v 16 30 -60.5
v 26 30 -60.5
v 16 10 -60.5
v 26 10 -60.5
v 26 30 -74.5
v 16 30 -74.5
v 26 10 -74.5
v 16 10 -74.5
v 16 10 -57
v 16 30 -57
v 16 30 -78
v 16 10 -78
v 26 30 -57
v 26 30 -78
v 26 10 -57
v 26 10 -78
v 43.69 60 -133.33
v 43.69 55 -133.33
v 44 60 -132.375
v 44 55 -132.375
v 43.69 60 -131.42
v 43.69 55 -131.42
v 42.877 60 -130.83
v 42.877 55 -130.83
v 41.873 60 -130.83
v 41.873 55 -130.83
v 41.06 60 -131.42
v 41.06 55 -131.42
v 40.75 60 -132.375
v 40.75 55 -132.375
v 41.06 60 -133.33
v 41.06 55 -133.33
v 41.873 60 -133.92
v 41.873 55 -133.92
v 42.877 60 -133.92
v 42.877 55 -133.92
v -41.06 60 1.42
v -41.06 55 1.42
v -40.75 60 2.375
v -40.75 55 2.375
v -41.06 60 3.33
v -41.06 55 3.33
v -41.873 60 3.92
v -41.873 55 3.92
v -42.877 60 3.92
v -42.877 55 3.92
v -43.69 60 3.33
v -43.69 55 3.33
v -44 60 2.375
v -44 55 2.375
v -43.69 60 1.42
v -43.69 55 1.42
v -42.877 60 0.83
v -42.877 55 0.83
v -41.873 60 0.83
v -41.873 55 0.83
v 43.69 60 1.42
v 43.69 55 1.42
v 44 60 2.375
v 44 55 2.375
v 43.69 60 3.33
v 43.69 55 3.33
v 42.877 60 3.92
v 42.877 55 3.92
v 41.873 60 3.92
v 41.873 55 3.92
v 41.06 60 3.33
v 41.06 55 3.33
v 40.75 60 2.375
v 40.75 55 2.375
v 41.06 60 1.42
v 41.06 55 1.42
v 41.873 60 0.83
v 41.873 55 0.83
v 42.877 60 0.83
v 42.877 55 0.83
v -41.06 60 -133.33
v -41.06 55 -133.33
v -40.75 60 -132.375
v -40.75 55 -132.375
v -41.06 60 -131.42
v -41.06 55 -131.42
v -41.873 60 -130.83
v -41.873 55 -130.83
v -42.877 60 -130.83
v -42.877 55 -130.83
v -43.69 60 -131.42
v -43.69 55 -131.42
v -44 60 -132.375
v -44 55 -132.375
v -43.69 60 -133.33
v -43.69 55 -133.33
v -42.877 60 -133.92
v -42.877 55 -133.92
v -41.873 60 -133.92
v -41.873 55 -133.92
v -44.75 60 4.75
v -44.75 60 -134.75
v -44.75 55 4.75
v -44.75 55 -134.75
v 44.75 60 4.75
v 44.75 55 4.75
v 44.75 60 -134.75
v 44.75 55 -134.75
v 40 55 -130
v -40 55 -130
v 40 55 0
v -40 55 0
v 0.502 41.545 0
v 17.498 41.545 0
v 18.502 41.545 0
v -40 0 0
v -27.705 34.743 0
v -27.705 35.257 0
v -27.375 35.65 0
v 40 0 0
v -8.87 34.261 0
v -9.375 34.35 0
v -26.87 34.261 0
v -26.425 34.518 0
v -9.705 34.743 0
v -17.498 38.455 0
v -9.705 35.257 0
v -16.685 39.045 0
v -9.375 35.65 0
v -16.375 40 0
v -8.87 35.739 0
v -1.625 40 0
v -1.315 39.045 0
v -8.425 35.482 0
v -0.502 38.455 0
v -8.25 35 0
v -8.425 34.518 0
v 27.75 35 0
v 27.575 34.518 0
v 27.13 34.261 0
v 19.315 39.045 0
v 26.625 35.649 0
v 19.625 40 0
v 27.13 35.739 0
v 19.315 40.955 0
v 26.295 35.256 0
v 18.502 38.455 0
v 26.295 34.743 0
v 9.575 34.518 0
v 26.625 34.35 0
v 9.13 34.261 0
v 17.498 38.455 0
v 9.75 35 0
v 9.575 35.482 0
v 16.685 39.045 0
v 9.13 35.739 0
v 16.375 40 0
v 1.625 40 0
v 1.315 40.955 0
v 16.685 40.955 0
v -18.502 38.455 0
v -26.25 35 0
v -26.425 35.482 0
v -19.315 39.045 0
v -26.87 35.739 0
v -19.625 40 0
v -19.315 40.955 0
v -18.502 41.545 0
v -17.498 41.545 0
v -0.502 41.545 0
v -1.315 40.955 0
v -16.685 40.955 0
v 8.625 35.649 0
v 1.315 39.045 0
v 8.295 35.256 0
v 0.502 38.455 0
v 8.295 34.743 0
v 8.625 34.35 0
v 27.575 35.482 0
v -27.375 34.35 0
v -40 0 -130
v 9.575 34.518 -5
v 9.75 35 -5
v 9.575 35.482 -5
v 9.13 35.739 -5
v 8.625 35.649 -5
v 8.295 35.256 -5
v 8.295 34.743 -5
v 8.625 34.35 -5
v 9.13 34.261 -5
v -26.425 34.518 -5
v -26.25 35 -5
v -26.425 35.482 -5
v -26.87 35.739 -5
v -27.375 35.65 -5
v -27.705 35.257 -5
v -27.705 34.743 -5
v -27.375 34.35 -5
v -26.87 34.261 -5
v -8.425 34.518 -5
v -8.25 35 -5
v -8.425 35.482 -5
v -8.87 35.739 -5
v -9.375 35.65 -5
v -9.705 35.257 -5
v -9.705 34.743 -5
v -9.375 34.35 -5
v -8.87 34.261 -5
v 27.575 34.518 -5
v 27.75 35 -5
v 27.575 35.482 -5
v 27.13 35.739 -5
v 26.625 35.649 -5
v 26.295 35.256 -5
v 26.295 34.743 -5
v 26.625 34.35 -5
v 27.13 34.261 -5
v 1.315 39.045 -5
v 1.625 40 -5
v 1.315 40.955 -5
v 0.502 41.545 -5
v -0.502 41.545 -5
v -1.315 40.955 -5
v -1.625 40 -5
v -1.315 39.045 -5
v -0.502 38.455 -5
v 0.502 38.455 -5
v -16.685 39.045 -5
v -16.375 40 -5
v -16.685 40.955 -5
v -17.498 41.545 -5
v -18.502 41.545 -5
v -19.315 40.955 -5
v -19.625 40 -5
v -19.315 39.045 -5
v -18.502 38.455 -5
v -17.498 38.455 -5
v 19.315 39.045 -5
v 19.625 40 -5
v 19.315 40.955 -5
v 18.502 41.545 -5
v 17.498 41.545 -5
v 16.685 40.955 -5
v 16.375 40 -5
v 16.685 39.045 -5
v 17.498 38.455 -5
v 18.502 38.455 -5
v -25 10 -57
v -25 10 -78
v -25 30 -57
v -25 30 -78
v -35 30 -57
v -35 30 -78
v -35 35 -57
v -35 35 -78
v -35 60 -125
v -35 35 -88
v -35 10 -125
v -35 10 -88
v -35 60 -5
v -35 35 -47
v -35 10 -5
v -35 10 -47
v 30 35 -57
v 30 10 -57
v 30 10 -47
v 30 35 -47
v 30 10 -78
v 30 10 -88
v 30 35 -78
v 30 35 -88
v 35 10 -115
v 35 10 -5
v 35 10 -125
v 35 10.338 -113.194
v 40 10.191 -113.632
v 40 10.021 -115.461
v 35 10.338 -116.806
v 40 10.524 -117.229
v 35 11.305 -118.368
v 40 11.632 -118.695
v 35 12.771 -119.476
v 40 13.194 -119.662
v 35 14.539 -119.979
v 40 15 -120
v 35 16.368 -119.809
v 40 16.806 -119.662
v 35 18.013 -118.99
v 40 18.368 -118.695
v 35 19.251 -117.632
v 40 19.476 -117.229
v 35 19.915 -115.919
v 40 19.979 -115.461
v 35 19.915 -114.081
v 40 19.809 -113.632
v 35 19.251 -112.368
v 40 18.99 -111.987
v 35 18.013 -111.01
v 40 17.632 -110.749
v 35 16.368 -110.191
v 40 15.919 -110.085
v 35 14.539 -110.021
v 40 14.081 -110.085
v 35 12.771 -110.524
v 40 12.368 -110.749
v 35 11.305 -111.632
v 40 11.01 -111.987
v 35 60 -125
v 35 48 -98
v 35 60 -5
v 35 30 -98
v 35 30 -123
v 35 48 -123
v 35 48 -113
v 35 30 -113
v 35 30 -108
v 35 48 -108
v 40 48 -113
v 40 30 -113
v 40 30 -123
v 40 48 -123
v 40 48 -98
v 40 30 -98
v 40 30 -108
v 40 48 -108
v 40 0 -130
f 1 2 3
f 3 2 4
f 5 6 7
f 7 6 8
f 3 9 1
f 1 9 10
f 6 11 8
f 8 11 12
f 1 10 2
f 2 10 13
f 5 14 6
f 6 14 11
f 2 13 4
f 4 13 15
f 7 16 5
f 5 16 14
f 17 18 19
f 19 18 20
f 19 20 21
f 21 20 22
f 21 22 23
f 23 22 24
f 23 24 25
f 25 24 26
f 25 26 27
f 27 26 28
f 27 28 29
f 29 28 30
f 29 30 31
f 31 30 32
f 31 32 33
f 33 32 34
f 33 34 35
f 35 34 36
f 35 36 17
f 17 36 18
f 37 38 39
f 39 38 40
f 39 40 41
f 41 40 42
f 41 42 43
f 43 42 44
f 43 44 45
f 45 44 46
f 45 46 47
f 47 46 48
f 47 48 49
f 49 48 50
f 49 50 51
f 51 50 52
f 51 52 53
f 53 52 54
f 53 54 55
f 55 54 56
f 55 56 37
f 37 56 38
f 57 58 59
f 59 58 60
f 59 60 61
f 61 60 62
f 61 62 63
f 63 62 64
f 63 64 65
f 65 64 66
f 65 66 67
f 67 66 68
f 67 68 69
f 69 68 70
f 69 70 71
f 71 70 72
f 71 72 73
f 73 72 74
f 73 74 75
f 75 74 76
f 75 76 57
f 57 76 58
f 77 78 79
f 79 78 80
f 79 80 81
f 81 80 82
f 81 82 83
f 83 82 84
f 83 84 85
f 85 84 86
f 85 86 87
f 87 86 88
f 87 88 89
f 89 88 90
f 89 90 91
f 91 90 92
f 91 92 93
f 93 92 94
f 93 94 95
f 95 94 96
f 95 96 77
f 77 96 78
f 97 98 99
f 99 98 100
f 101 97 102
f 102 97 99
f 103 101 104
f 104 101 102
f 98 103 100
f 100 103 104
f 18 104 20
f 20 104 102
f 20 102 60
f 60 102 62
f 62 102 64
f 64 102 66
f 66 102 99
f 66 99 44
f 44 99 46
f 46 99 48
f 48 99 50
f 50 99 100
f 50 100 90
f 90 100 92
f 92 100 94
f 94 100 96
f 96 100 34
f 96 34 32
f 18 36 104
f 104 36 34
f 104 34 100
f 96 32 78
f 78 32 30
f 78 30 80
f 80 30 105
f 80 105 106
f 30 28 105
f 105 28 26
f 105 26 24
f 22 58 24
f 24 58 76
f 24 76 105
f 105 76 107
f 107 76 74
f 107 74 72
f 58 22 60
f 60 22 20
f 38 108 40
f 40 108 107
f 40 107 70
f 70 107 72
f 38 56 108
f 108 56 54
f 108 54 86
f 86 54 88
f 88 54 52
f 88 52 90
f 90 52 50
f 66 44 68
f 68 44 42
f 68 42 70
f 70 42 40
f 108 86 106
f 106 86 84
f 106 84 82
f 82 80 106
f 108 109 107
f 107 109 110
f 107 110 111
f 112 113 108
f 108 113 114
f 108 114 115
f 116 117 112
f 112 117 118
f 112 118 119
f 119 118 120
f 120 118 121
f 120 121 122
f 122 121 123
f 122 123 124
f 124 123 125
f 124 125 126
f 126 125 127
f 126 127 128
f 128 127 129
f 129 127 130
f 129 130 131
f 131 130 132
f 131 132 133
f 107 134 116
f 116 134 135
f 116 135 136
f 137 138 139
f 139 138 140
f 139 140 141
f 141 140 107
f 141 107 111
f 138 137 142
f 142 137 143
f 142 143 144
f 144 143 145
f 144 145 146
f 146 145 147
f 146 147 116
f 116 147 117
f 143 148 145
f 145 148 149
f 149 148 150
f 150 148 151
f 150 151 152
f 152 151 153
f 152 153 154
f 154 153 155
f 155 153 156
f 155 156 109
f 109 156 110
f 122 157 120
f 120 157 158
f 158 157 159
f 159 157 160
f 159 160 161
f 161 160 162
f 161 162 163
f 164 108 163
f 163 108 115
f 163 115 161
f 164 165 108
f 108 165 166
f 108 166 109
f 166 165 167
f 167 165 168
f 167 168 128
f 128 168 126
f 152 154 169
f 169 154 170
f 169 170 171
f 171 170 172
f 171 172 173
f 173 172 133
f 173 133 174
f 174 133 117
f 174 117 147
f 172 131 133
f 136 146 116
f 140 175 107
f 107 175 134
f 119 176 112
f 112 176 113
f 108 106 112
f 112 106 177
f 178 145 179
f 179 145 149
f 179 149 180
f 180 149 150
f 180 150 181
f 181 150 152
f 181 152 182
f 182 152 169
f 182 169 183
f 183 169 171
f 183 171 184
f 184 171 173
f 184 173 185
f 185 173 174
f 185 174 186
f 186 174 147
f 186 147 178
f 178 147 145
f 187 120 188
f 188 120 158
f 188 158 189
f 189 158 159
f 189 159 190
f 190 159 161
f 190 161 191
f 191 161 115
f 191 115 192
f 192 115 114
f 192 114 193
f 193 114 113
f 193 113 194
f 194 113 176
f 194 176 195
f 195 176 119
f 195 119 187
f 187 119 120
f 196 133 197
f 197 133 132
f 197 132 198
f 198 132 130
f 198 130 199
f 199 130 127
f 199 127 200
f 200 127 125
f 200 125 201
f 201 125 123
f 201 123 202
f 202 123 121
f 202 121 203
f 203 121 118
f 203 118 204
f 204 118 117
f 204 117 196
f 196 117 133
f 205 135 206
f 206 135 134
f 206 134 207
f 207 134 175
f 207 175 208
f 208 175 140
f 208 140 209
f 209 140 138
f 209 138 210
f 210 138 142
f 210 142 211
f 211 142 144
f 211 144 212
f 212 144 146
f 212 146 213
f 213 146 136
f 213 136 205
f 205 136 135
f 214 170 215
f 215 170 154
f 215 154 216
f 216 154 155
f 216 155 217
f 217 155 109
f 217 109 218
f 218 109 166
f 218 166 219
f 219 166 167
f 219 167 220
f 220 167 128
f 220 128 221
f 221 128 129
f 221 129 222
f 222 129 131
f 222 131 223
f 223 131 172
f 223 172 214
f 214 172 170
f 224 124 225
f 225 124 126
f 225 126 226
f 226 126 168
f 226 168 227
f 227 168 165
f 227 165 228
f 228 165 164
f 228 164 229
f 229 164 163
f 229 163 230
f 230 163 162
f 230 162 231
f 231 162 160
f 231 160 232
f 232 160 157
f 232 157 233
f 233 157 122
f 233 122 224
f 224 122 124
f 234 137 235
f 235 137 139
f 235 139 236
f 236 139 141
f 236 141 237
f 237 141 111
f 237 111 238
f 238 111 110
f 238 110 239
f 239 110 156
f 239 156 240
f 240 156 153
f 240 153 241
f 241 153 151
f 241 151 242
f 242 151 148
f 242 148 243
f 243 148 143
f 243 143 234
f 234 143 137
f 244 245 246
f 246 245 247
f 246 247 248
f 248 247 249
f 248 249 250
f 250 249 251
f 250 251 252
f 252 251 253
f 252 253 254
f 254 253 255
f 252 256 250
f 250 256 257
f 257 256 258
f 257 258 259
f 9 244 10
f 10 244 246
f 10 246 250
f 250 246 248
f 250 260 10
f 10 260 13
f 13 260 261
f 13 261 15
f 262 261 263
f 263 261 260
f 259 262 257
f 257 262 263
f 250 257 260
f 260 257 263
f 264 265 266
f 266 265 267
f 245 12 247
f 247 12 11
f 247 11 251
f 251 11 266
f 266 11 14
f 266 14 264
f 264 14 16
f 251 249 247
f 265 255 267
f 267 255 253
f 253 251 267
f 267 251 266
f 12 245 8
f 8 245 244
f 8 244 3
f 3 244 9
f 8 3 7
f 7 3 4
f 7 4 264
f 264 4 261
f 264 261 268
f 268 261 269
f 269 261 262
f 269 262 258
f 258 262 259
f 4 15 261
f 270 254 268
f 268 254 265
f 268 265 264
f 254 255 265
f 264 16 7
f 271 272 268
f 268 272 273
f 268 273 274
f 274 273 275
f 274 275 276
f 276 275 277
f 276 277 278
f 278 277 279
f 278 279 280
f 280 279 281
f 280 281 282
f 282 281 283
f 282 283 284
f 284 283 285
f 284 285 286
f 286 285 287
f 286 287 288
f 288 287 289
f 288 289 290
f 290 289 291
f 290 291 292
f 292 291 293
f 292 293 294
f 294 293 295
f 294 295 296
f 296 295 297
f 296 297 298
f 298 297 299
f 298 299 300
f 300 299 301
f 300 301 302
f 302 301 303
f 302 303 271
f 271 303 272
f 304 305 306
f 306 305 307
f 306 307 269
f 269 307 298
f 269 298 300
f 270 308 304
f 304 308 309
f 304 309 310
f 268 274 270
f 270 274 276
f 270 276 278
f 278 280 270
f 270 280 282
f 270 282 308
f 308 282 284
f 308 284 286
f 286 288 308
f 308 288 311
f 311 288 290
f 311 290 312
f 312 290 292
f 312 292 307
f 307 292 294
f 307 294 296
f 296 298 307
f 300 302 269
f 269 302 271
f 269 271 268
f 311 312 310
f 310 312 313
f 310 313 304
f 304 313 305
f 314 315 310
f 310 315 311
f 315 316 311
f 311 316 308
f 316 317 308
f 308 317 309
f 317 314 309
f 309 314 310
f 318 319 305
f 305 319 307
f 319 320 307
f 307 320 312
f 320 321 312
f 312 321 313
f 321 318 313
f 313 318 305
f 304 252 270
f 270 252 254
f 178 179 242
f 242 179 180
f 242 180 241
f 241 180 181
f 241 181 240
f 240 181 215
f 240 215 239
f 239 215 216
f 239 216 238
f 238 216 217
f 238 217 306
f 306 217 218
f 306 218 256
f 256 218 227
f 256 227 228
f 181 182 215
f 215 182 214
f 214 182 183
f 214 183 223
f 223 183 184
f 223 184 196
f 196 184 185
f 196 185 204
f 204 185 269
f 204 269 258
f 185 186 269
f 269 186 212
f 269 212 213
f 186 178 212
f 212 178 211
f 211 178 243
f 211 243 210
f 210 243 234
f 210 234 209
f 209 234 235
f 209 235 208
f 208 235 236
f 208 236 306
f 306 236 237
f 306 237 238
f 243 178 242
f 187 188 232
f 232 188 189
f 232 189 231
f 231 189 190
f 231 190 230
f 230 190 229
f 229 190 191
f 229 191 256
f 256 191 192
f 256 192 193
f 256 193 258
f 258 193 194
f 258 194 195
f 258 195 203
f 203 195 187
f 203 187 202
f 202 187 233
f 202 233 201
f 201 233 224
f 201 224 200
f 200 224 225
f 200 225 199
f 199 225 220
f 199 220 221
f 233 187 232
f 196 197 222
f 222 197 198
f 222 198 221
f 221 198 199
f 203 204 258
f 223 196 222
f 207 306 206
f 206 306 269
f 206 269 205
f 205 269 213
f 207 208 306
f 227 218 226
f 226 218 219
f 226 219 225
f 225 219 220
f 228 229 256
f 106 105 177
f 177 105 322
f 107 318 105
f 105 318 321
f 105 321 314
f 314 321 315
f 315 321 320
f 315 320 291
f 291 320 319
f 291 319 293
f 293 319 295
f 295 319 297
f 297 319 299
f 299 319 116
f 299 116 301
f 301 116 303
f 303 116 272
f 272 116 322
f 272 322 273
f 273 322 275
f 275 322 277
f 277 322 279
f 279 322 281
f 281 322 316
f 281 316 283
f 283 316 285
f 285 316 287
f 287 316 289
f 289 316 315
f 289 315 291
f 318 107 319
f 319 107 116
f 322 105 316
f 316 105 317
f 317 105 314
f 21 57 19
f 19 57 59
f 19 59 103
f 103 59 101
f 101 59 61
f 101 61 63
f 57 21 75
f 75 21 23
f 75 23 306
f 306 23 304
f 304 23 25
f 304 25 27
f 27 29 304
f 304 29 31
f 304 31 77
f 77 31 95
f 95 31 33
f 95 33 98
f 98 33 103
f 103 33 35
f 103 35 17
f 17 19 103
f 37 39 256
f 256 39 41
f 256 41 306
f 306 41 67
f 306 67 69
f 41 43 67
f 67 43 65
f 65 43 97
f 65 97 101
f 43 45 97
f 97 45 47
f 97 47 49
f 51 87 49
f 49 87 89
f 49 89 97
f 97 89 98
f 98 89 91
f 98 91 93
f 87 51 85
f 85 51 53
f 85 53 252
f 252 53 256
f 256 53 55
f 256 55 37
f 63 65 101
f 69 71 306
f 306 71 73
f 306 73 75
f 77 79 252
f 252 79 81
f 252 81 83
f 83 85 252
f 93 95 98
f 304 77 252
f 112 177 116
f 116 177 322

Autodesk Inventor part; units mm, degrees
ref_plane "YZ Plane" through (0, 0, 0) normal (1, 0, 0) x (0, 1, 0)
ref_plane "XZ Plane" through (0, 0, 0) normal (0, 1, 0) x (-1, 0, 0)
ref_plane "XY Plane" through (0, 0, 0) normal (0, 0, 1) x (1, 0, 0)
sketch "Sketch1" plane through (0, 0, 0) normal (0, 1, 0) x (-1, 0, 0)
  line L0 (56, 0) -> (-56, 0) projected
  line L1 (0, -156) -> (0, 26) projected
  line L2 (40, 0) -> (-40, 0)
  line L3 (-40, 0) -> (-40, -130)
  line L4 (-40, -130) -> (40, -130)
  line L5 (40, -130) -> (40, 0)
  point P0 (0, 0)
  point P1 (0, 0)
  dimension "d0" = 80
  dimension "d1" = 130
  dimension "d2" = 40
extrude "Extrusion1" add sketch "Sketch1" along normal blind 60
sketch "Sketch2" plane through (0, 60, 0) normal (0, 1, 0) x (1, 0, 0)
  line L0 (-35, 5) -> (35, 5)
  line L1 (35, 5) -> (35, 125)
  line L2 (35, 125) -> (-35, 125)
  line L3 (-35, 125) -> (-35, 5)
  line L4 (-40, 130) -> (-40, 0) projected
  line L5 (-40, 0) -> (40, 0) projected
  point P0 (0, 0)
  dimension "d5" = 70
  dimension "d6" = 120
  dimension "d7" = 5
  dimension "d8" = 5
extrude "Extrusion2" cut sketch "Sketch2" against normal blind 50
sketch "Sketch3" plane through (40, 0, 0) normal (1, 0, 0) x (0, 0, -1)
  line L0 (113, 48) -> (123, 48)
  line L1 (123, 48) -> (123, 30)
  line L2 (123, 30) -> (113, 30)
  line L3 (113, 30) -> (113, 48)
  line L4 (130, 0) -> (130, 60) projected
  line L5 (0, 60) -> (130, 60) projected
  line L6 (98, 48) -> (108, 48)
  line L7 (108, 48) -> (108, 30)
  line L8 (108, 30) -> (98, 30)
  line L9 (98, 30) -> (98, 48)
  point P0 (0, 0)
  dimension "d11" = 10
  dimension "d12" = 18
  dimension "d13" = 7
  dimension "d14" = 12
  dimension "d15" = 10
  dimension "d16" = 18
  dimension "d17" = 5
extrude "Extrusion3" cut sketch "Sketch3" against normal blind 5
sketch "Sketch4" plane through (40, 0, 0) normal (1, 0, 0) x (0, 0, -1)
  circle A0 centre (115, 15) radius 5
  line L0 (0, 0) -> (130, 0) projected
  line L1 (130, 0) -> (130, 60) projected
  dimension "d20" = 10
  dimension "d21" = 15
  dimension "d22" = 15
extrude "Extrusion4" cut sketch "Sketch4" against normal blind 5
sketch "Sketch6" plane through (0, 10, 0) normal (0, 1, 0) x (1, 0, 0)
  line L0 (-35, 125) -> (35, 125) projected
  line L1 (-35, 5) -> (-35, 125) projected
  line L2 (35, 5) -> (-35, 5) projected
  line L3 (35, 115) -> (35, 5) projected
  line L4 (35, 125) -> (35, 115) projected
  line L5 (-35, 88) -> (30, 88)
  line L6 (30, 88) -> (30, 78)
  line L7 (30, 78) -> (-35, 78)
  line L8 (-35, 78) -> (-35, 88)
  line L9 (25, 125) -> (25, 88) projected
  line L10 (25, 88) -> (30, 88) projected
  line L11 (30, 88) -> (30, 125) projected
  point P0 (0, 0)
  dimension "d30" = 65
  dimension "d31" = 10
extrude "Extrusion6" add sketch "Sketch6" along normal blind 25 contours L5 L6 L7 L1
sketch "Sketch7" plane through (0, 10, 0) normal (0, 1, 0) x (1, 0, 0)
  line L0 (30, 78) -> (-35, 78) projected
  line L1 (-35, 5) -> (-35, 78) projected
  line L2 (35, 5) -> (-35, 5) projected
  line L3 (35, 115) -> (35, 5) projected
  line L4 (35, 125) -> (35, 115) projected
  line L5 (-35, 125) -> (35, 125) projected
  line L6 (30, 88) -> (30, 78) projected
  line L7 (-35, 57) -> (30, 57)
  line L8 (30, 57) -> (30, 47)
  line L9 (30, 47) -> (-35, 47)
  line L10 (-35, 47) -> (-35, 57)
  line L11 (30, 88) -> (30, 125) projected
  line L12 (-35, 88) -> (30, 88) projected
  line L13 (-35, 88) -> (-35, 125) projected
  point P0 (0, 0)
  dimension "d34" = 65
  dimension "d35" = 10
  dimension "d36" = 21
extrude "Extrusion7" add sketch "Sketch7" along normal blind 25 contours L7 L8 L9 L1
sketch "Sketch8" plane through (0, 10, 0) normal (0, 1, 0) x (1, 0, 0)
  line L0 (-35, 57) -> (30, 57) projected
  line L1 (30, 57) -> (30, 47) projected
  line L2 (30, 47) -> (-35, 47) projected
  line L3 (-35, 5) -> (-35, 47) projected
  line L4 (35, 5) -> (-35, 5) projected
  line L5 (35, 115) -> (35, 5) projected
  line L6 (35, 125) -> (35, 115) projected
  line L7 (-35, 125) -> (35, 125) projected
  line L8 (30, 88) -> (30, 78) projected
  line L9 (30, 78) -> (-35, 78) projected
  line L10 (-35, 57) -> (-35, 78) projected
  line L11 (-35, 78) -> (-25, 78)
  line L12 (-25, 78) -> (-25, 57)
  line L13 (-25, 57) -> (-35, 57)
  line L14 (-35, 57) -> (-35, 78)
  line L15 (16, 58) -> (16, 79)
  line L16 (16, 79) -> (26, 79)
  line L17 (26, 79) -> (26, 57)
  line L18 (26, 57) -> (16, 57)
  line L19 (16, 57) -> (16, 79)
  line L20 (30, 57) -> (-35, 57) projected
  line L21 (-35, 88) -> (-35, 125) projected
  line L22 (-35, 88) -> (30, 88) projected
  point P0 (0, 0)
  dimension "d39" = 10
  dimension "d40" = 10
  dimension "d41" = 41
extrude "Extrusion8" add sketch "Sketch8" along normal blind 20 contours L10 L9 L12 L0 | L19 L15 L9 L17 L0 | L15 L16 L17 L9
sketch "Sketch10" plane through (-40, 0, 0) normal (0, 0, 1) x (1, 0, 0)
  circle A0 centre (22, 40) radius 1.625
  circle A1 centre (40, 40) radius 1.625
  circle A2 centre (58, 40) radius 1.625
  line L0 (0, 0) -> (0, 60) projected
  line L1 (0, 0) -> (80, 0) projected
  line L2 (80, 0) -> (80, 60) projected
  line L3 (0, 60) -> (80, 60) projected
  line L4 (0, 0) -> (0, 60) projected
  point P0 (40, 0)
  dimension "d49" = 3.25
  dimension "d51" = 3.25
  dimension "d53" = 3.25
  dimension "d55" = 18
  dimension "d56" = 18
  dimension "d59" = 22
  dimension "d60" = 22
  dimension "d61" = 20
extrude "Extrusion10" cut sketch "Sketch10" against normal blind 10 contours A0 | A1 | A2
sketch "Sketch11" plane through (-40, 0, 0) normal (0, 0, 1) x (1, 0, 0)
  circle A0 centre (13, 35) radius 0.75
  circle A1 centre (31, 35) radius 0.75
  circle A2 centre (49, 35) radius 0.75
  circle A3 centre (67, 35) radius 0.75
  circle A4 centre (40, 40) radius 1.625 projected
  circle A5 centre (22, 40) radius 1.625 projected
  circle A6 centre (58, 40) radius 1.625 projected
  line L0 (0, 0) -> (80, 0) projected
  line L1 (80, 0) -> (80, 60) projected
  line L2 (0, 60) -> (80, 60) projected
  line L3 (0, 0) -> (0, 60) projected
  dimension "d64" = 1.5
  dimension "d65" = 1.5
  dimension "d66" = 1.5
  dimension "d67" = 1.5
  dimension "d71" = 18
  dimension "d73" = 18
  dimension "d75" = 18
  dimension "d76" = 13
  dimension "d77" = 13
  dimension "d78" = 5
  dimension "d79" = 5
extrude "Extrusion11" cut sketch "Sketch11" against normal blind 10 contours A0 | A1 | A2 | A3
sketch "Sketch12" plane through (0, 60, 0) normal (0, 1, 0) x (1, 0, 0)
  line L0 (-44.75, 134.75) -> (44.75, 134.75)
  line L1 (44.75, 134.75) -> (44.75, -4.75)
  line L2 (44.75, -4.75) -> (-44.75, -4.75)
  line L3 (-44.75, -4.75) -> (-44.75, 134.75)
  line L4 (35, 125) -> (35, 5) projected
  line L5 (35, 5) -> (-35, 5) projected
  line L6 (-35, 5) -> (-35, 125) projected
  line L7 (-35, 125) -> (35, 125) projected
  line L8 (-40, 0) -> (40, 0) projected
  line L9 (40, 0) -> (40, 130) projected
  line L10 (40, 130) -> (-40, 130) projected
  line L11 (-40, 130) -> (-40, 0) projected
  line L12 (-40, 130) -> (-40, 0) projected
  line L13 (-40, 130) -> (40, 130)
  line L14 (40, 130) -> (40, 0)
  line L15 (40, 0) -> (-40, 0)
  line L16 (-40, 0) -> (-40, 130)
  point P0 (0, 0)
  dimension "d82" = 4.75
  dimension "d83" = 4.75
  dimension "d84" = 4.75
  dimension "d85" = 4.75
extrude "Extrusion12" add sketch "Sketch12" against normal blind 5 contours L0 L1 L2 L3
sketch "Sketch15" plane through (0, 55, 0) normal (0, -1, 0) x (1, 0, 0)
  line L0 (40, 0) -> (-40, 0) projected
  line L1 (40, -130) -> (40, 0) projected
  line L2 (-40, -130) -> (40, -130) projected
  line L3 (-40, 0) -> (-40, -130) projected
  line L4 (-44.75, -134.75) -> (44.75, -134.75) projected
  line L5 (44.75, -134.75) -> (44.75, 4.75) projected
  line L6 (44.75, 4.75) -> (-44.75, 4.75) projected
  line L7 (-44.75, 4.75) -> (-44.75, -134.75) projected
  line L8 (-40, 0) -> (40, 0) projected
  line L9 (-40, -130) -> (-40, 0) projected
  line L10 (40, -130) -> (-40, -130) projected
  line L11 (40, 0) -> (40, -130) projected
  circle A0 centre (-42.375, 2.375) radius 1.625
  circle A1 centre (42.375, 2.375) radius 1.625
  circle A2 centre (42.375, -132.375) radius 1.625
  circle A3 centre (-42.375, -132.375) radius 1.625
  point P0 (0, 0)
  dimension "d91" = 3.25
  dimension "d92" = 2.375
  dimension "d93" = 2.375
  dimension "d94" = 3.25
  dimension "d95" = 2.375
  dimension "d96" = 2.375
  dimension "d97" = 3.25
  dimension "d98" = 2.375
  dimension "d99" = 2.375
  dimension "d100" = 3.25
  dimension "d101" = 2.375
  dimension "d102" = 2.375
extrude "Extrusion13" cut sketch "Sketch15" against normal blind 5 contours A0 | A1 | A2 | A3
sketch "Sketch16" plane through (0, 30, 0) normal (0, 1, 0) x (1, 0, 0)
  line L0 (16, 78) -> (26, 78) projected
  line L1 (16, 78) -> (16, 57) projected
  line L2 (26, 57) -> (16, 57) projected
  line L3 (26, 57) -> (26, 78) projected
  line L4 (16, 57) -> (16, 78) projected
  line L5 (26, 78) -> (26, 57) projected
  line L6 (16, 74.5) -> (26, 74.5)
  line L7 (26, 74.5) -> (26, 60.5)
  line L8 (26, 60.5) -> (16, 60.5)
  line L9 (16, 60.5) -> (16, 74.5)
  point P0 (0, 0)
  dimension "d105" = 3.5
  dimension "d106" = 3.5
extrude "Extrusion14" cut sketch "Sketch16" against normal blind 20 contours L6 L3 L8 L1
properties part number "mien_arm"
